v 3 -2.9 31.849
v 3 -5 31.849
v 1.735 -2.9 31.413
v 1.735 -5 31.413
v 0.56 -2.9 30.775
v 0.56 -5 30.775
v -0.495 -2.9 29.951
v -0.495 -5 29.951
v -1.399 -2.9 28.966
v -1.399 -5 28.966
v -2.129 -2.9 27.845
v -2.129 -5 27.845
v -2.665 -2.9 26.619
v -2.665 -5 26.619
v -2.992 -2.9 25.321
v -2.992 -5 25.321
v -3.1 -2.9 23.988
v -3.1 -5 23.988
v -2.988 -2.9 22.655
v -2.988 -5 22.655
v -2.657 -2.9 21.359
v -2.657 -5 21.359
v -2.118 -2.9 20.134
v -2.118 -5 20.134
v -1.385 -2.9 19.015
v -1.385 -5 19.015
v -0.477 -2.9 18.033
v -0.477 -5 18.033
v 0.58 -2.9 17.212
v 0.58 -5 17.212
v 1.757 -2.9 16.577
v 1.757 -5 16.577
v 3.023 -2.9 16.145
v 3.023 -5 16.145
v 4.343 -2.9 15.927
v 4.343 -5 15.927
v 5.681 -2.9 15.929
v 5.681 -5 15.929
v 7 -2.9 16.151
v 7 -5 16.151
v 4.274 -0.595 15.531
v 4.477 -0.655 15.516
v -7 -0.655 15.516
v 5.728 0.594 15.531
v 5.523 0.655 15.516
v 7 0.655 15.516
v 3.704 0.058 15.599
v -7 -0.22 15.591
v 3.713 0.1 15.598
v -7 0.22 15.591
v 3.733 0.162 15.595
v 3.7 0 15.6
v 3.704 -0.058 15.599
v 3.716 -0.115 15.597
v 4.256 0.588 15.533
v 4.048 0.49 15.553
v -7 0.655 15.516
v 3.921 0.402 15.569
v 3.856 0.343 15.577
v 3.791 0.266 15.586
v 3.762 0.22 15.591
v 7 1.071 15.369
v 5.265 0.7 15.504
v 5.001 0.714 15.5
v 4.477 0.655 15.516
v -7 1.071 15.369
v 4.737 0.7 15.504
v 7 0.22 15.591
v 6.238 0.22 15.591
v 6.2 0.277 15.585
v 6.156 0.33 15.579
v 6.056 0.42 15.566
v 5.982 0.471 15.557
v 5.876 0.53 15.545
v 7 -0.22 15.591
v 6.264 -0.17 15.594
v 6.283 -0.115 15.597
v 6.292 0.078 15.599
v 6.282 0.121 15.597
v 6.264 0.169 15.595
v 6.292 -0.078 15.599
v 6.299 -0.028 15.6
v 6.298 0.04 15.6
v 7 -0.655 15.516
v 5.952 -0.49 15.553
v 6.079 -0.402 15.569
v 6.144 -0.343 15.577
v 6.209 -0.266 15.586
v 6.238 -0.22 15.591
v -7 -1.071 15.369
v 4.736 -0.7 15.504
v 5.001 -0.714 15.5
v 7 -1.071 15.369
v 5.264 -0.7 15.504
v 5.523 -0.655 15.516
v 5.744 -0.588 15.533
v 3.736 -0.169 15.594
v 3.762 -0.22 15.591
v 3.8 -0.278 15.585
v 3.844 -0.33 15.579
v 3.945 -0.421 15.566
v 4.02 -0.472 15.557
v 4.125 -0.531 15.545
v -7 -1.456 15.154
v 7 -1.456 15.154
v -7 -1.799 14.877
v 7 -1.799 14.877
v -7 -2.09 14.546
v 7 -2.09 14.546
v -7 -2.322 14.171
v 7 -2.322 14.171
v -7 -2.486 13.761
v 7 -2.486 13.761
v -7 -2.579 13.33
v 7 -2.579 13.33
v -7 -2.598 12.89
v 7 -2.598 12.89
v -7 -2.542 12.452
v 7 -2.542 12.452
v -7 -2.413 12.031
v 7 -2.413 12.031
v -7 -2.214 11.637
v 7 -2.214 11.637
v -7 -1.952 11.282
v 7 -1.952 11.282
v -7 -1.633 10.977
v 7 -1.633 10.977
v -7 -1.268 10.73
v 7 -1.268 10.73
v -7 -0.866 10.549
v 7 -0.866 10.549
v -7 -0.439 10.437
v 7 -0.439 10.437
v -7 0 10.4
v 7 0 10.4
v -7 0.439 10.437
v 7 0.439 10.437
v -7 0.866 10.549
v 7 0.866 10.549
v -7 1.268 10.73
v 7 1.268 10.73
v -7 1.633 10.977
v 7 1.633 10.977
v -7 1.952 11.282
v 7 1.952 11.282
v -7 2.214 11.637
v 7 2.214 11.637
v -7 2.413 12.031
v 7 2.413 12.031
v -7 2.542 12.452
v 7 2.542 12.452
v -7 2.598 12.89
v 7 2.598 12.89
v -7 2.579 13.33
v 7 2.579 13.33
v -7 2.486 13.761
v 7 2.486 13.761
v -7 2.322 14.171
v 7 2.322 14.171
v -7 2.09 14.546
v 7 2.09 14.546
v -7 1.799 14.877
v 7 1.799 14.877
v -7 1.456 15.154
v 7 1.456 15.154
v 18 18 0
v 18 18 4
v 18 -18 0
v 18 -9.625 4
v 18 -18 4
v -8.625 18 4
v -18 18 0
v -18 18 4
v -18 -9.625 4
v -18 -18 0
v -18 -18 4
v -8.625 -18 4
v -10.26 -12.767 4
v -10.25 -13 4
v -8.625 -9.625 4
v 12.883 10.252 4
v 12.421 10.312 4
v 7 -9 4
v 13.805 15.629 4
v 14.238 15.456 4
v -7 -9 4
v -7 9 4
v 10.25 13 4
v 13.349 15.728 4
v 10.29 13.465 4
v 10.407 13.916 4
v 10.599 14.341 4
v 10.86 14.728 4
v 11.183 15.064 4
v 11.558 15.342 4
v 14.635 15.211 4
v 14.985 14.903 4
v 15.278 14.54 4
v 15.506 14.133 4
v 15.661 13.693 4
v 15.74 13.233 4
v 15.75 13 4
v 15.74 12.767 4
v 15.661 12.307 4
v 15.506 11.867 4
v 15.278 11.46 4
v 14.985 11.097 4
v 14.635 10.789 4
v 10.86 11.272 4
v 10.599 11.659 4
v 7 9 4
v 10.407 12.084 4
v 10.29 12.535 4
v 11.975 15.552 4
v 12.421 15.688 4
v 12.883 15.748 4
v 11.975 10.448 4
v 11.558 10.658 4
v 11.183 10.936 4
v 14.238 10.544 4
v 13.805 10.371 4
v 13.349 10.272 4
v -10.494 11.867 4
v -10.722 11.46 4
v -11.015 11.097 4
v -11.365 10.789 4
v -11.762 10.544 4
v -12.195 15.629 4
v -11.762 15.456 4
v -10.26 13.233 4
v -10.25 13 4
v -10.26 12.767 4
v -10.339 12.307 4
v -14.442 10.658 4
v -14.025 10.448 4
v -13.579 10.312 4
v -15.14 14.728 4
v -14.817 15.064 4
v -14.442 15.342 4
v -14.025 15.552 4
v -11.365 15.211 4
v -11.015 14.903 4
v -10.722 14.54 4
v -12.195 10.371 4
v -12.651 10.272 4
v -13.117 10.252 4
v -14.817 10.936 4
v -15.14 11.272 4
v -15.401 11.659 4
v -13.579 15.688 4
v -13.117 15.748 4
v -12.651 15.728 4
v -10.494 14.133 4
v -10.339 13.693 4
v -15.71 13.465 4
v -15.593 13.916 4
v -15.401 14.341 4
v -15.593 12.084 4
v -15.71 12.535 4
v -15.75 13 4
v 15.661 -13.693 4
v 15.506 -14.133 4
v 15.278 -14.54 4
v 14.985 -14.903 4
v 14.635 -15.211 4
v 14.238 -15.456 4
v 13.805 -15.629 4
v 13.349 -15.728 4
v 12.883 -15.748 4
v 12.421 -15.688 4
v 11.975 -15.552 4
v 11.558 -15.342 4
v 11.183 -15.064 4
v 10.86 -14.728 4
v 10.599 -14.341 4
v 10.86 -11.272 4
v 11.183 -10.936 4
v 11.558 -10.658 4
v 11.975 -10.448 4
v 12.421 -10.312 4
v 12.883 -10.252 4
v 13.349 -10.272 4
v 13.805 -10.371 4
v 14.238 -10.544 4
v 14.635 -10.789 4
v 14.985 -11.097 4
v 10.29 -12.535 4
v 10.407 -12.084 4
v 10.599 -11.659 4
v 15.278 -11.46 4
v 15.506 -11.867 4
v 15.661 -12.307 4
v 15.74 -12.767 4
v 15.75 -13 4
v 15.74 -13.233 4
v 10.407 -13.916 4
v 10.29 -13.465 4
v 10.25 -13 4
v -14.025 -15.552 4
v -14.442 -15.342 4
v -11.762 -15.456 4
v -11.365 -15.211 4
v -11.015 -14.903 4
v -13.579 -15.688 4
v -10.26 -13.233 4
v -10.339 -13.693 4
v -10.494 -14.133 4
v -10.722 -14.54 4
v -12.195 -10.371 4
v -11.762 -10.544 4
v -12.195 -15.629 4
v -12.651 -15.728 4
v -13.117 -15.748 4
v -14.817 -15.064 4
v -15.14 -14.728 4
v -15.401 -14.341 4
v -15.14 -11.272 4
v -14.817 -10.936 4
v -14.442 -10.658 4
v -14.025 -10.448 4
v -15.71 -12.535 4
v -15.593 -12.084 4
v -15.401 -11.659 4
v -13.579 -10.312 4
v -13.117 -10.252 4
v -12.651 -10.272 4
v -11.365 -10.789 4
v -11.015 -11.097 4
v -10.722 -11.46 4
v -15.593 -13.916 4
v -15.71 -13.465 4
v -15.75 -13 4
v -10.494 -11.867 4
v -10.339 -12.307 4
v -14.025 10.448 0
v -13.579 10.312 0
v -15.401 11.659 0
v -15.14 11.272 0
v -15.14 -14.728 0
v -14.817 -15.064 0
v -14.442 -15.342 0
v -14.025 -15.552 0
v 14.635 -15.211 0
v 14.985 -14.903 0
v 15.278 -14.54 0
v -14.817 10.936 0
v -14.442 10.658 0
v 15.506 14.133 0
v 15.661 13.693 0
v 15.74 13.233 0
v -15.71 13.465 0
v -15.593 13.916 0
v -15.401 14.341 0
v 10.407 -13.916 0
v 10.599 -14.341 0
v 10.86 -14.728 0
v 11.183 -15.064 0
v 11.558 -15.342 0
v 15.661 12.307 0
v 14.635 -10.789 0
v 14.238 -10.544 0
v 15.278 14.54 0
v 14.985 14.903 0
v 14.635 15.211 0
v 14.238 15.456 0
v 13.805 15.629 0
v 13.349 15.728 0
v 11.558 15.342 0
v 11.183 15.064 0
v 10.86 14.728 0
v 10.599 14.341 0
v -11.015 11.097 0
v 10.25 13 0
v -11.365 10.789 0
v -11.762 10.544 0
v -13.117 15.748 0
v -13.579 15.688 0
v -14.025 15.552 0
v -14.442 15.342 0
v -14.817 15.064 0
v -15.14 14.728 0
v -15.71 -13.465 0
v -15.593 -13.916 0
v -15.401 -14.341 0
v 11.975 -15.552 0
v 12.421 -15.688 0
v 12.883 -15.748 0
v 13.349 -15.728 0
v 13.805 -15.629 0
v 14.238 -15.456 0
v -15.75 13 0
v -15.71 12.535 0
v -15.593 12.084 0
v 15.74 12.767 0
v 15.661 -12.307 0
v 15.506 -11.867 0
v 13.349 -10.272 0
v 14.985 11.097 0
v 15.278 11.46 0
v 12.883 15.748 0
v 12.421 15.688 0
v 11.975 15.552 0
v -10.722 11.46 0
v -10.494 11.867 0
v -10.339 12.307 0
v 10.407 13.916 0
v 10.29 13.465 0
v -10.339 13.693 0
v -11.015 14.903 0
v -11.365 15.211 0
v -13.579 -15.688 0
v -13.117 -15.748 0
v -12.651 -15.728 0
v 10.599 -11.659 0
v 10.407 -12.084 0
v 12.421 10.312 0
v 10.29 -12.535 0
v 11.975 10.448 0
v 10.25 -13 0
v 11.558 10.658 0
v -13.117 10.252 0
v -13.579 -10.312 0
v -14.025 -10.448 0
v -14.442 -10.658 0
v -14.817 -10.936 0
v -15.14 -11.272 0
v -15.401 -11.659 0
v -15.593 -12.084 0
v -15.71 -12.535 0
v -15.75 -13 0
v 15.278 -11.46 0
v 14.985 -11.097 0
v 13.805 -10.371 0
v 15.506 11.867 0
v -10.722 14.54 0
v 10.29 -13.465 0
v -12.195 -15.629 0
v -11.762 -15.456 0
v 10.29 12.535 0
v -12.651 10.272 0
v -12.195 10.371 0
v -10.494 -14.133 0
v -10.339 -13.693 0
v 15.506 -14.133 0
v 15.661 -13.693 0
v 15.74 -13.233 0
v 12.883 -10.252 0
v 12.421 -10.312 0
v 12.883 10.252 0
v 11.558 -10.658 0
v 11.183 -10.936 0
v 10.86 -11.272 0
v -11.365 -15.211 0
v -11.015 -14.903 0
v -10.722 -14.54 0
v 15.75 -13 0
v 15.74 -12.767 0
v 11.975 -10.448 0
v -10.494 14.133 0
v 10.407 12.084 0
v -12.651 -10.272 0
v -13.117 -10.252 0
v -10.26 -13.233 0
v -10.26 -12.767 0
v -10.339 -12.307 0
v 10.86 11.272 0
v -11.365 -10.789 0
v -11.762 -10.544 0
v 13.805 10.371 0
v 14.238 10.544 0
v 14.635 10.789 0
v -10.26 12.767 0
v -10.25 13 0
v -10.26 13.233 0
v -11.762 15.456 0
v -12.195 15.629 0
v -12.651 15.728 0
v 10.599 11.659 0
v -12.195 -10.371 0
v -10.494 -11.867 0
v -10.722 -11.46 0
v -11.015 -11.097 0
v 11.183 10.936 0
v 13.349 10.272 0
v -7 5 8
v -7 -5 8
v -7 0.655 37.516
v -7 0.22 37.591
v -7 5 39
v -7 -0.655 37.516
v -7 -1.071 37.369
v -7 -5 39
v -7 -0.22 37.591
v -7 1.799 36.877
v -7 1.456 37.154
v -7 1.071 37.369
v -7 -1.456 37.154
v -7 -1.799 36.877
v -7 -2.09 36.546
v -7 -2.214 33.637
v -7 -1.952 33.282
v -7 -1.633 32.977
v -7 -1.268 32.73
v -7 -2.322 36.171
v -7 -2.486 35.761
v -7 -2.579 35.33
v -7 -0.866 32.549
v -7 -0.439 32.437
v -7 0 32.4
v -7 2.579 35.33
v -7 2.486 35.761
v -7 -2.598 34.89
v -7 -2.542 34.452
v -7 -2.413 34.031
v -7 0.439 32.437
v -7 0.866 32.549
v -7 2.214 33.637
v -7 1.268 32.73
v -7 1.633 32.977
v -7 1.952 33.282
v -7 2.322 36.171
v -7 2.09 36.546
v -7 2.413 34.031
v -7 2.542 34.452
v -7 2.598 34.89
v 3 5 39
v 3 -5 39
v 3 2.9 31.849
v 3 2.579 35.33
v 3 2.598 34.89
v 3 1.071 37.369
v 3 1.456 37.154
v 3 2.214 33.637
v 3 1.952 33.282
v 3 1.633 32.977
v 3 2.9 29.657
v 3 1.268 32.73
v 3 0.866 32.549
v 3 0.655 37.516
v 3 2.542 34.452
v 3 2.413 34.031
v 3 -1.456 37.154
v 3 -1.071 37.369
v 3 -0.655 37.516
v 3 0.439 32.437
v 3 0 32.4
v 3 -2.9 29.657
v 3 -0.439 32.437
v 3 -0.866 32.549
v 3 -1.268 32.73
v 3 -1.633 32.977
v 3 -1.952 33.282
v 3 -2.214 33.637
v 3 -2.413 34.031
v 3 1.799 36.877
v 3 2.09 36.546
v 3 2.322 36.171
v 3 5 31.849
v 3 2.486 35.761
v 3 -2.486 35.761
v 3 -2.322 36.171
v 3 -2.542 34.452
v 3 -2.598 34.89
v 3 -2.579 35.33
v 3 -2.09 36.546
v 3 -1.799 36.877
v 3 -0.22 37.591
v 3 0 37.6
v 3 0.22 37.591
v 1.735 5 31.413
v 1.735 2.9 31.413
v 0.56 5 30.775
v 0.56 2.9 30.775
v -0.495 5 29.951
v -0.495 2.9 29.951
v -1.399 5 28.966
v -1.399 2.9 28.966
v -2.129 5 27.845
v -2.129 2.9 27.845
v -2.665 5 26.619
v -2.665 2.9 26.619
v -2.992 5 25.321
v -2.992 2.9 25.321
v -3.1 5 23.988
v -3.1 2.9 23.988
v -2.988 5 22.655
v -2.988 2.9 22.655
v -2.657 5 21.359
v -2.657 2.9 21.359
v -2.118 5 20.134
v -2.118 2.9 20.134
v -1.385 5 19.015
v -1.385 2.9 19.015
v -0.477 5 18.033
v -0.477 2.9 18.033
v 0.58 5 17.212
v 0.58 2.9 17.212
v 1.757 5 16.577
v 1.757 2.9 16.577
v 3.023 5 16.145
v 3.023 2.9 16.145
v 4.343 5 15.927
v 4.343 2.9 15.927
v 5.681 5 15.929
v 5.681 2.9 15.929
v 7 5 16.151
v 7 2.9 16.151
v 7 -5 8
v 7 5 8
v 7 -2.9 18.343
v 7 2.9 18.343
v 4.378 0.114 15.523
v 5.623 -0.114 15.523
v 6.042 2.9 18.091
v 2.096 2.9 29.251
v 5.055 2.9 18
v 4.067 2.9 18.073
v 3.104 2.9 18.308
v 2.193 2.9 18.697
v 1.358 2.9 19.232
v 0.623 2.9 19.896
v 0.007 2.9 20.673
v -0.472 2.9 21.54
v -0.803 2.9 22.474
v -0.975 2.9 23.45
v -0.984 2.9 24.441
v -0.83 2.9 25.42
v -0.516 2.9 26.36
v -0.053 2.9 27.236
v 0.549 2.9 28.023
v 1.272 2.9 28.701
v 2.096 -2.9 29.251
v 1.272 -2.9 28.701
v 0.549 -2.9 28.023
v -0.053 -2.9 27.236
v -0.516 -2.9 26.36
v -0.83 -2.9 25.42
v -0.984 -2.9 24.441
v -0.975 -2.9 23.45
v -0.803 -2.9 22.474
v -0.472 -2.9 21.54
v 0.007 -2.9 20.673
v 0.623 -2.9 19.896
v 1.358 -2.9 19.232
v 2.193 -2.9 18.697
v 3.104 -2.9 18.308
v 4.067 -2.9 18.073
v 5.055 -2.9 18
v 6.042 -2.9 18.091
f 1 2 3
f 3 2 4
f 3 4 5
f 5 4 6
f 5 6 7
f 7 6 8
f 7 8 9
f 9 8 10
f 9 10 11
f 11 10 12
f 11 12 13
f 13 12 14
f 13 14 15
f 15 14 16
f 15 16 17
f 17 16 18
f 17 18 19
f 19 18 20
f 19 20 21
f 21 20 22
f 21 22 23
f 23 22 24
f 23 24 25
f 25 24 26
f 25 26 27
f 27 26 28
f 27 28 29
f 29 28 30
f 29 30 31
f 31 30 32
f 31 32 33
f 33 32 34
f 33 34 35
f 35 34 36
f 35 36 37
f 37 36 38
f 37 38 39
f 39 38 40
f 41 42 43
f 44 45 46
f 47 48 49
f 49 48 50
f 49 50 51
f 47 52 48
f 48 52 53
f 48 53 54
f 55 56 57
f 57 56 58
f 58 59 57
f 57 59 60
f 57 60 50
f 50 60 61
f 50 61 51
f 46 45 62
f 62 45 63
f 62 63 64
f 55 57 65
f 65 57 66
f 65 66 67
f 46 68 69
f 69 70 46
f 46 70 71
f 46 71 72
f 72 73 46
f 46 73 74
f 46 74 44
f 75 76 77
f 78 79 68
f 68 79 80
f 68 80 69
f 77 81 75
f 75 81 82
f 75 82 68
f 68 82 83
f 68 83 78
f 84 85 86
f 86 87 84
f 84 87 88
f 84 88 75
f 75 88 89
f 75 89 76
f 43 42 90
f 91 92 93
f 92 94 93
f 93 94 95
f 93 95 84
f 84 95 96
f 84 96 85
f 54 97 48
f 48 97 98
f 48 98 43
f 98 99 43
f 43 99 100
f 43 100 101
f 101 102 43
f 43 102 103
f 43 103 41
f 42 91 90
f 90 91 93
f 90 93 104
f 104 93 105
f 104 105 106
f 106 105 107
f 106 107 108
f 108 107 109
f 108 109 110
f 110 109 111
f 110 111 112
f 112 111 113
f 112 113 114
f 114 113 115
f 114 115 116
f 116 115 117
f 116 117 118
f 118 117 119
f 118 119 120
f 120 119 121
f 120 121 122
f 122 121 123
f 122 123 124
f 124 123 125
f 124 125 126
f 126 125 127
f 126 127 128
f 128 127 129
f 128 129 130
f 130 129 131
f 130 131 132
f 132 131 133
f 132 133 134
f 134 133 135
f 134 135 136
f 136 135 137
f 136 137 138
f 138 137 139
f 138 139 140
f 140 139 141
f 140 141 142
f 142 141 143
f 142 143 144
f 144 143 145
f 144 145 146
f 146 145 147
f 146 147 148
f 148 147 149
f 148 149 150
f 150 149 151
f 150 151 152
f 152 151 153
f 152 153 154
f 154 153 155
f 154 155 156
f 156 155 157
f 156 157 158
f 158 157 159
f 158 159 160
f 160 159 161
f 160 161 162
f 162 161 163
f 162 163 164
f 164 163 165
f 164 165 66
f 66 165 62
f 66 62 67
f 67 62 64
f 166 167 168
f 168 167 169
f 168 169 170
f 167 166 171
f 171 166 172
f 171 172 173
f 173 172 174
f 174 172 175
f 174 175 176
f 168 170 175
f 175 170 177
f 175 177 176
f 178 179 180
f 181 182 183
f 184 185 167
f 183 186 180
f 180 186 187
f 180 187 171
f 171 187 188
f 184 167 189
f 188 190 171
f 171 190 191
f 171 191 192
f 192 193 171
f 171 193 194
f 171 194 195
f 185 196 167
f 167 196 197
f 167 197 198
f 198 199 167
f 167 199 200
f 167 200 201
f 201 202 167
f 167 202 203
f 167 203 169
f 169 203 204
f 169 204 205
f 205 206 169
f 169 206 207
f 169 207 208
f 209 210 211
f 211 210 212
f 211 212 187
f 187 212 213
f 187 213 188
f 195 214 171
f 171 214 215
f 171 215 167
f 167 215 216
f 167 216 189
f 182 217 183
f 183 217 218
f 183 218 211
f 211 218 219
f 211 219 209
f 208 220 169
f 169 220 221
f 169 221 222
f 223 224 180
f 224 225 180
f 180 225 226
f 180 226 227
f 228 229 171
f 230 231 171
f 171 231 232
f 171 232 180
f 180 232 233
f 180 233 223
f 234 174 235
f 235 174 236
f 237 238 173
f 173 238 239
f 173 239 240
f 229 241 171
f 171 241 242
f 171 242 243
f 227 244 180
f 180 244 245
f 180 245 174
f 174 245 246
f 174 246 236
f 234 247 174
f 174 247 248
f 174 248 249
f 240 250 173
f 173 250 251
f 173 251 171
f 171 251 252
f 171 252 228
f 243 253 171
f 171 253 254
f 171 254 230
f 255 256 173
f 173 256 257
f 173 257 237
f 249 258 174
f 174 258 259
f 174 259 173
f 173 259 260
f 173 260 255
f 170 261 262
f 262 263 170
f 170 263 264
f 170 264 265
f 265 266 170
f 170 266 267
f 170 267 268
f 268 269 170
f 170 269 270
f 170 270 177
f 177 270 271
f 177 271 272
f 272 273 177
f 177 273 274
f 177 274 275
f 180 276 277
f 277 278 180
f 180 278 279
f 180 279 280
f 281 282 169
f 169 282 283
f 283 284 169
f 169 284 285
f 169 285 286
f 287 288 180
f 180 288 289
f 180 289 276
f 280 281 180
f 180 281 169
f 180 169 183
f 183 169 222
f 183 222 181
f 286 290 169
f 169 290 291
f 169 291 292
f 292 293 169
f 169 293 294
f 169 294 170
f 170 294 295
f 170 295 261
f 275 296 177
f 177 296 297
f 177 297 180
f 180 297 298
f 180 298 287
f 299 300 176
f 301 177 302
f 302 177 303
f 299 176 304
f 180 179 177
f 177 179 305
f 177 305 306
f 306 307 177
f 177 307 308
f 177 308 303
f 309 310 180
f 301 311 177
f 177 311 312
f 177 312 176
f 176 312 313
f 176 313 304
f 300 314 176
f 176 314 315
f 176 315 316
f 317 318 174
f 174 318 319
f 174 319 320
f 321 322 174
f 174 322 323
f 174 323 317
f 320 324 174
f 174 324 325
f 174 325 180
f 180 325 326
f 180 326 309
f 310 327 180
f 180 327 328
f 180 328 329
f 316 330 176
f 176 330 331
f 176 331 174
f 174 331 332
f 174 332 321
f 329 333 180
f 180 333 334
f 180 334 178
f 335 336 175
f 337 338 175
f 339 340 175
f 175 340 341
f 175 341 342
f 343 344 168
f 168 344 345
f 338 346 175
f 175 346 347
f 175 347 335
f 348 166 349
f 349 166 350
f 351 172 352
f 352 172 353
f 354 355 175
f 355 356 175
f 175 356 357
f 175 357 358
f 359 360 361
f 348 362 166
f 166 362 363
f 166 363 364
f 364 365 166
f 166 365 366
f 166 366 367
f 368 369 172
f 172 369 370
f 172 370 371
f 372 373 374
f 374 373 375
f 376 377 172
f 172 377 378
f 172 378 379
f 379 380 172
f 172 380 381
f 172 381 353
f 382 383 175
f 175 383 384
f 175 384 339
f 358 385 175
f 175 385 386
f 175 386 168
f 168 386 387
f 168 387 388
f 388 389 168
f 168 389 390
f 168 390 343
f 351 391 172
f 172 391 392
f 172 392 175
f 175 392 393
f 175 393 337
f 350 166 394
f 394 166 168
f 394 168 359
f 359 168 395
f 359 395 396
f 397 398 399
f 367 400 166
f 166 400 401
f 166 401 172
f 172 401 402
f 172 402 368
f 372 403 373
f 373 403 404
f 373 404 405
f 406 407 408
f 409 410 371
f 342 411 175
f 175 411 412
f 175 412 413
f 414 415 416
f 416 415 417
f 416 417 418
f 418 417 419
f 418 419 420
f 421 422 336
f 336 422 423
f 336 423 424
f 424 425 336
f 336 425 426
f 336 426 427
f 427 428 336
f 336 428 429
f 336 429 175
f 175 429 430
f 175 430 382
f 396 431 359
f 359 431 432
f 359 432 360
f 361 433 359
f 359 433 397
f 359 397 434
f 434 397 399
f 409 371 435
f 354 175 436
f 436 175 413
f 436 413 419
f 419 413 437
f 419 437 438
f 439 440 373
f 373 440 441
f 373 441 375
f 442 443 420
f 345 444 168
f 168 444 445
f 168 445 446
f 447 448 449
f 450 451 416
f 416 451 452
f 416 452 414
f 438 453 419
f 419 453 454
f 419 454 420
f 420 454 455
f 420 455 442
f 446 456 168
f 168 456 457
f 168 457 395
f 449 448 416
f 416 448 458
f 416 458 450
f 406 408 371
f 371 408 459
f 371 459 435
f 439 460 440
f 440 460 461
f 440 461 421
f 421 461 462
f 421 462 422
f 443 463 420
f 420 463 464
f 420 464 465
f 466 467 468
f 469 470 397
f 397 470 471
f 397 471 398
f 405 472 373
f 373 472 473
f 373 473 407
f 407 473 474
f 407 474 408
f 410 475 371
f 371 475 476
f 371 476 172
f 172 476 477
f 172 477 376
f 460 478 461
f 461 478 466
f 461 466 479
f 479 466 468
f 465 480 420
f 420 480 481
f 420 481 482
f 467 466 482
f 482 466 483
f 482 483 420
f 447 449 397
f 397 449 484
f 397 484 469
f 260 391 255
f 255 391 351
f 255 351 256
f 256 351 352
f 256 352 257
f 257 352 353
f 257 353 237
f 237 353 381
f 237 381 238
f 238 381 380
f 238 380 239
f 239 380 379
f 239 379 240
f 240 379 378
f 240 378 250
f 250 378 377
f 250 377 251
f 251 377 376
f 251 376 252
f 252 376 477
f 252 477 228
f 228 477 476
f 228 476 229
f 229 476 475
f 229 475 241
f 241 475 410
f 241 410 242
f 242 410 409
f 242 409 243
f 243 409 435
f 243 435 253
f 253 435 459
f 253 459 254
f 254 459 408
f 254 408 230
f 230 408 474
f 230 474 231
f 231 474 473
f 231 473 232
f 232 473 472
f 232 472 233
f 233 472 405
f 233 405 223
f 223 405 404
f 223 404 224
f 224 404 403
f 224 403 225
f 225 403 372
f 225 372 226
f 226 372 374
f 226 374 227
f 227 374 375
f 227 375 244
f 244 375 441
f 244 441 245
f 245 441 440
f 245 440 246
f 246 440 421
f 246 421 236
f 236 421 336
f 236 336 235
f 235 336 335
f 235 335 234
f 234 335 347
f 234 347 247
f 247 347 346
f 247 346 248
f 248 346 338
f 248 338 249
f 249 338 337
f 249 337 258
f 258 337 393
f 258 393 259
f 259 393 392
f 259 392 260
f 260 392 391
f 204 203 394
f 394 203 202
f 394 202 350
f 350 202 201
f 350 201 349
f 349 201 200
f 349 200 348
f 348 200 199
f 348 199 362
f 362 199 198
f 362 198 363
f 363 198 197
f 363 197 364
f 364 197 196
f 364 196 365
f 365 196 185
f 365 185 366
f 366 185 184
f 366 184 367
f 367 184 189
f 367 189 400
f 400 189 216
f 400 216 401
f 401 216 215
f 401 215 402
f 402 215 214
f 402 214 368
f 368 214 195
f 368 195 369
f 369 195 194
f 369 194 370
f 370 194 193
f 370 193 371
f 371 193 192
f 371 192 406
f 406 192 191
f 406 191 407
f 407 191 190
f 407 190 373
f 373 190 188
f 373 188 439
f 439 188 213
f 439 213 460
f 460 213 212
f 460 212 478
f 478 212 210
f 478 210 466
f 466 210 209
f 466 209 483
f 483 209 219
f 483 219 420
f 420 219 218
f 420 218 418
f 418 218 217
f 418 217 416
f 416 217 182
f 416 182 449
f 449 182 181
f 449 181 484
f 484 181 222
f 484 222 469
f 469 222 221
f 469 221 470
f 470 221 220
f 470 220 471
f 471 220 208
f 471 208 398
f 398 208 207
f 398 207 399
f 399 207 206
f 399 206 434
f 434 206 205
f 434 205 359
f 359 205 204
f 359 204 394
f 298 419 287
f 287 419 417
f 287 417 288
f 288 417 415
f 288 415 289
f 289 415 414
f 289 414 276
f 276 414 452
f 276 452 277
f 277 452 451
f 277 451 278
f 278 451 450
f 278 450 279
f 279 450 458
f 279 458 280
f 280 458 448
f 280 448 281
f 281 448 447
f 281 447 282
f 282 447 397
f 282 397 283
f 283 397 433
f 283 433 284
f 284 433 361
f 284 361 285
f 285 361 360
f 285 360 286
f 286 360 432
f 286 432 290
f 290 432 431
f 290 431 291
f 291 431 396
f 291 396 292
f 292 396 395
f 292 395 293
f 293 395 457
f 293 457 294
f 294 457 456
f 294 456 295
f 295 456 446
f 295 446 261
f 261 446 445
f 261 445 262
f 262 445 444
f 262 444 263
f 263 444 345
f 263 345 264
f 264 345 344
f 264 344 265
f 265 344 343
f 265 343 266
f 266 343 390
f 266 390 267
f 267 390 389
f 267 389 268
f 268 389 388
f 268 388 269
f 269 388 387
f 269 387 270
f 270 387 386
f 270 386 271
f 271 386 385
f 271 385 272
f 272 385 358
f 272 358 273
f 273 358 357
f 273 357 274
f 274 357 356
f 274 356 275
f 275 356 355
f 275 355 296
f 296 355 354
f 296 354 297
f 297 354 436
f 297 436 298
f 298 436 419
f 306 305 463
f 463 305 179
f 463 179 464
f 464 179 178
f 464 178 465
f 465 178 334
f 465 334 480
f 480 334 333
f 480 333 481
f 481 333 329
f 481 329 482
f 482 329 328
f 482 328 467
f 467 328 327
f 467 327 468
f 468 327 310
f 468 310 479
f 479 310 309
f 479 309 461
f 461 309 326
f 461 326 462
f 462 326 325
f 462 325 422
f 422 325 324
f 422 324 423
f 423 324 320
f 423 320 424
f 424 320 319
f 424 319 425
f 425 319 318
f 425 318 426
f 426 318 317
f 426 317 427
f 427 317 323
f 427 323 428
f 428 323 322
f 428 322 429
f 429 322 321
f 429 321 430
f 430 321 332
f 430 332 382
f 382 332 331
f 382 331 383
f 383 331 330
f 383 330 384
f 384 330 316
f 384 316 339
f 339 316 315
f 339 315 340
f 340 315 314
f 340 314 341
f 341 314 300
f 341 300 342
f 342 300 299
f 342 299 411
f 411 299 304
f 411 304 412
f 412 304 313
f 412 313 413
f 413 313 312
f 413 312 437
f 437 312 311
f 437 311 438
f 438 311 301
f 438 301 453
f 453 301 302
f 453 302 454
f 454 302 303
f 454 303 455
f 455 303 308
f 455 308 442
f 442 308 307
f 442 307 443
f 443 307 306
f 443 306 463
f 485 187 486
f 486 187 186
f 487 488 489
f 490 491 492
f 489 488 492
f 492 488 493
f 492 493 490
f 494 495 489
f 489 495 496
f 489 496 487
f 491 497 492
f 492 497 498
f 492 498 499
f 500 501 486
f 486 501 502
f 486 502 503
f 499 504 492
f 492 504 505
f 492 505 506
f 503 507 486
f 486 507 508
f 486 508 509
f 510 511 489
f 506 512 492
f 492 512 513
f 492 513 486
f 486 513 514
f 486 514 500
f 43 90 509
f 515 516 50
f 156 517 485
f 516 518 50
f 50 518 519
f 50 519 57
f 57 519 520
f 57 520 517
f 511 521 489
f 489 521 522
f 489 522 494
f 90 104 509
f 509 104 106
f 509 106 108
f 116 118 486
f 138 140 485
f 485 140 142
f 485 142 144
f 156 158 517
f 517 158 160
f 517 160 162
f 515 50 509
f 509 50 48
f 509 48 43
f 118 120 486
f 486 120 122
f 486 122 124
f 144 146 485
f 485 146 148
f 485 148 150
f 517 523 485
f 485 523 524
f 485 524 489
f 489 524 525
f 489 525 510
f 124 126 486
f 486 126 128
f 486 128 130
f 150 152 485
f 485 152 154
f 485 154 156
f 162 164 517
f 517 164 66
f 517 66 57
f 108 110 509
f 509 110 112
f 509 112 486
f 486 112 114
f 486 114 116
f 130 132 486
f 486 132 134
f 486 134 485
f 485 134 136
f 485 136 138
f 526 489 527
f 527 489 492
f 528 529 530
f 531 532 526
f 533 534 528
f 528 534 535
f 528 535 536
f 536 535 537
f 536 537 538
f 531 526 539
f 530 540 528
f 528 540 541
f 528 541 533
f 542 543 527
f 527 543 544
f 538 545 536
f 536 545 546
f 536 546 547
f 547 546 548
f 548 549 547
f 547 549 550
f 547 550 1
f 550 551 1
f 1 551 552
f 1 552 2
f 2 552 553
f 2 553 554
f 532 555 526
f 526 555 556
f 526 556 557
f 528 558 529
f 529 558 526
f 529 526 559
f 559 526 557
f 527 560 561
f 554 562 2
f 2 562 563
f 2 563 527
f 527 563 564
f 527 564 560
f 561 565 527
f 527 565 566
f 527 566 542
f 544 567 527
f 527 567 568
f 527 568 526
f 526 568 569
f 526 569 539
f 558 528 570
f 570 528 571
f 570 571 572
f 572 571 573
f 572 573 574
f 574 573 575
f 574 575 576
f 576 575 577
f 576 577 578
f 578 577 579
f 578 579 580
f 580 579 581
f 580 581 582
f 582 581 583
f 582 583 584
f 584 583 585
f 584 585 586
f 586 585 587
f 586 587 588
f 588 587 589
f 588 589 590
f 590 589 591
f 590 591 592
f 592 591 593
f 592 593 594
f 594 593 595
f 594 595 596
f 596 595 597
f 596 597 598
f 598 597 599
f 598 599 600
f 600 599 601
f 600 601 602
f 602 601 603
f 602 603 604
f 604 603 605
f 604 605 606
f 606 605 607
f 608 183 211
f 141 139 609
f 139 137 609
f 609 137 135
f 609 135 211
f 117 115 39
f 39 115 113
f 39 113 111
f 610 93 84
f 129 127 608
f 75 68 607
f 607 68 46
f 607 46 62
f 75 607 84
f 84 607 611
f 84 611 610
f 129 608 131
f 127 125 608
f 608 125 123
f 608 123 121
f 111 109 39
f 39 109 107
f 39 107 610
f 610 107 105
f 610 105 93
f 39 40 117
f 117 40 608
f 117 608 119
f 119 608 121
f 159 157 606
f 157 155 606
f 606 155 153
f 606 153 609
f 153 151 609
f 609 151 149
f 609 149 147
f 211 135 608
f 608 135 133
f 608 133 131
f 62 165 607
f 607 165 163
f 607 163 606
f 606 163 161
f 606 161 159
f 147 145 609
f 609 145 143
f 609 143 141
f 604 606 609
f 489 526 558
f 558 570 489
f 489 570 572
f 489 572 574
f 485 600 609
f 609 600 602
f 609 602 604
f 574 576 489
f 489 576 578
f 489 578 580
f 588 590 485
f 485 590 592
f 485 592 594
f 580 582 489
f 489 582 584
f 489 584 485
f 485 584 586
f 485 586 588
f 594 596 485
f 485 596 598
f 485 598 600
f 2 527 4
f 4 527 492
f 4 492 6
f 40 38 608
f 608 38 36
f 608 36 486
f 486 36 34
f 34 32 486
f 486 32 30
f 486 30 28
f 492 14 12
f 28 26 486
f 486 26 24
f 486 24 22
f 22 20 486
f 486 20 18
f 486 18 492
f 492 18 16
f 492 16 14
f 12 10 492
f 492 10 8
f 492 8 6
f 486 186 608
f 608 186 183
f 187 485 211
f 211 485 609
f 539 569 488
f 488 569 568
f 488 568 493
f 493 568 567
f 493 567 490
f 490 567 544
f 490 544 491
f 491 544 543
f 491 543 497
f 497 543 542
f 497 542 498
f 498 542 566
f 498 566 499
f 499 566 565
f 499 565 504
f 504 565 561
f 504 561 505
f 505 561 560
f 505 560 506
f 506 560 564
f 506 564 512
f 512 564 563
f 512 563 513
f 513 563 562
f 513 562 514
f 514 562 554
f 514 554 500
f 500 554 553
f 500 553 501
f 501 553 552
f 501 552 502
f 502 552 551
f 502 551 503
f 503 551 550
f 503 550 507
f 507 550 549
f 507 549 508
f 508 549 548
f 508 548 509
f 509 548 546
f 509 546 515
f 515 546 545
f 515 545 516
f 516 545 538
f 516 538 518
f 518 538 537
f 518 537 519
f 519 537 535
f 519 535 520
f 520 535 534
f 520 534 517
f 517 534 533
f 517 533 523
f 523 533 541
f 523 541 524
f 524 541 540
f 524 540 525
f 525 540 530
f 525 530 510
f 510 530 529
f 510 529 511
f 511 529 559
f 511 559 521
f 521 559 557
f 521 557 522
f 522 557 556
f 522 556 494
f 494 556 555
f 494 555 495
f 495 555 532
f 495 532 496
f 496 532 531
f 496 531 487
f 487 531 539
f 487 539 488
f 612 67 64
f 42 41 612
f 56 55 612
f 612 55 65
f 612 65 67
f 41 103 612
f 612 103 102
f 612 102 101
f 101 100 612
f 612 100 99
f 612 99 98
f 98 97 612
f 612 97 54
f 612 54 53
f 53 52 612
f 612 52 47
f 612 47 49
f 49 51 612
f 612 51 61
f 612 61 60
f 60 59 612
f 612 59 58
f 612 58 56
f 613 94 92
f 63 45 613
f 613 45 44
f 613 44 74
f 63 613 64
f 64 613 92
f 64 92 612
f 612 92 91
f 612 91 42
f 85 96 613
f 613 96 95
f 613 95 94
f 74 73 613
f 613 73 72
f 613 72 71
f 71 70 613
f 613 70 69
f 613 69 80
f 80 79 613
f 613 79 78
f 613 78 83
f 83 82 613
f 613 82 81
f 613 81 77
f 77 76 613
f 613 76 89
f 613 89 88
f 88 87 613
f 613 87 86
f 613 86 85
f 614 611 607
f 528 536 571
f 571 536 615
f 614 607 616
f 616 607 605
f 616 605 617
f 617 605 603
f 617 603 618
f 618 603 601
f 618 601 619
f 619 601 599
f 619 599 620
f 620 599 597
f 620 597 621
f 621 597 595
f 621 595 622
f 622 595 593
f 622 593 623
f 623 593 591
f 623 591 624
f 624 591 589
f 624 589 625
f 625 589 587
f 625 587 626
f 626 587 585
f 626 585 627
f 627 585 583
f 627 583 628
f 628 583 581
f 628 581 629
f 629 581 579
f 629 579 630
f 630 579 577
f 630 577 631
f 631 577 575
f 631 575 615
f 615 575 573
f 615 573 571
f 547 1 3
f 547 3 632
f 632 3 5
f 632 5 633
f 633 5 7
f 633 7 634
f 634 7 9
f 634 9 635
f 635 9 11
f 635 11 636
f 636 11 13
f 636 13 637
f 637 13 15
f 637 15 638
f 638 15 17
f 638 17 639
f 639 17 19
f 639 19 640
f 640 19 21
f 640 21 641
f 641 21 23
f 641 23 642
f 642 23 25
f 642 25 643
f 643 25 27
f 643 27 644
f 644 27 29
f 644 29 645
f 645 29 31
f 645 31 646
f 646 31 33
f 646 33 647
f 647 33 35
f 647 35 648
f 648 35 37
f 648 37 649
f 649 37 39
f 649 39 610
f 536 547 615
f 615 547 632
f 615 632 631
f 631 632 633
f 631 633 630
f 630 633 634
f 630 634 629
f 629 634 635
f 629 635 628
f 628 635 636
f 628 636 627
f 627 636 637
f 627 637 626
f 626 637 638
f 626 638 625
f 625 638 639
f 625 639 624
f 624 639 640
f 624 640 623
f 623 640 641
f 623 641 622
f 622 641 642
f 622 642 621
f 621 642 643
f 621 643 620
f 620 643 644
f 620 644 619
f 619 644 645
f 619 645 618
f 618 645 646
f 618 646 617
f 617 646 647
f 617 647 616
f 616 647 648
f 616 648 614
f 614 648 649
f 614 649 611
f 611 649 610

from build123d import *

# Parameters (mm, degrees)
SKETCH1_W           = 36
SKETCH1_H           = 36
BOSS_EXTRUDE1_DEPTH = 4
CUT_EXTRUDE1_REACH  = 27.768
SKETCH2_R           = 2.75
BOSS_EXTRUDE2_DEPTH = 5
CHAMFER1_SIZE       = 4
SKETCH4_R           = 2.6
CUT_EXTRUDE2_DEPTH  = 7
BOSS_EXTRUDE3_DEPTH = 2.9


with BuildPart() as part:
    # Sketch1 → Boss-Extrude1 (new body)
    with BuildSketch(Plane.XY):
        Rectangle(SKETCH1_W, SKETCH1_H)
    extrude(amount=BOSS_EXTRUDE1_DEPTH)

    # Sketch2 → Cut-Extrude1 (cut, up to next)
    with BuildSketch(Plane.XY, mode=Mode.PRIVATE) as cut_extrude1_sk1:
        with Locations((-13, 13)):
            Circle(SKETCH2_R)
    cut_extrude1_tool1 = extrude(cut_extrude1_sk1.sketch, amount=CUT_EXTRUDE1_REACH, mode=Mode.PRIVATE) & part.part
    # Sketch2 → Cut-Extrude1 (cut, up to next)
    with BuildSketch(Plane.XY, mode=Mode.PRIVATE) as cut_extrude1_sk2:
        with Locations(Location((13, 13, 0), (0, 0, 180))):
            Circle(SKETCH2_R)
    cut_extrude1_tool2 = extrude(cut_extrude1_sk2.sketch, amount=CUT_EXTRUDE1_REACH, mode=Mode.PRIVATE) & part.part
    # Sketch2 → Cut-Extrude1 (cut, up to next)
    with BuildSketch(Plane.XY, mode=Mode.PRIVATE) as cut_extrude1_sk3:
        with Locations((13, -13)):
            Circle(SKETCH2_R)
    cut_extrude1_tool3 = extrude(cut_extrude1_sk3.sketch, amount=CUT_EXTRUDE1_REACH, mode=Mode.PRIVATE) & part.part
    # Sketch2 → Cut-Extrude1 (cut, up to next)
    with BuildSketch(Plane.XY, mode=Mode.PRIVATE) as cut_extrude1_sk4:
        with Locations(Location((-13, -13, 0), (0, 0, 180))):
            Circle(SKETCH2_R)
    cut_extrude1_tool4 = extrude(cut_extrude1_sk4.sketch, amount=CUT_EXTRUDE1_REACH, mode=Mode.PRIVATE) & part.part
    add(cut_extrude1_tool1.solids().sort_by_distance((-13, 13, 0))[0], mode=Mode.SUBTRACT)
    add(cut_extrude1_tool2.solids().sort_by_distance((13, 13, 0))[0], mode=Mode.SUBTRACT)
    add(cut_extrude1_tool3.solids().sort_by_distance((13, -13, 0))[0], mode=Mode.SUBTRACT)
    add(cut_extrude1_tool4.solids().sort_by_distance((-13, -13, 0))[0], mode=Mode.SUBTRACT)

    # Sketch3 → Boss-Extrude2 (add, symmetric)
    with BuildSketch(Plane(origin=(0, 0, 0), x_dir=(1, 0, 0), z_dir=(0, 1, 0))):
        with BuildLine():
            Line((-7, -4), (-7, -39))
            Line((-7, -39), (3, -39))
            Line((3, -39), (3, -31.849203781))
            ThreePointArc((3, -31.849203781), (-2.849203781, -22), (7, -16.150796219))
            Line((7, -16.150796219), (7, -4))
            Line((7, -4), (-7, -4))
        make_face()
    extrude(amount=BOSS_EXTRUDE2_DEPTH, both=True)

    # Chamfer1
    chamfer1_edges = [part.edges().sort_by_distance(p)[0] for p in [
        (0, -5, 4),
        (0, 5, 4),
    ]]
    chamfer(chamfer1_edges, length=CHAMFER1_SIZE)

    # Sketch4 → Cut-Extrude2 (cut, symmetric)
    with BuildSketch(Plane(origin=(0, 0, 0), x_dir=(0, 0, -1), z_dir=(1, 0, 0))):
        with Locations((-13, 0)):
            Circle(SKETCH4_R)
        with Locations((-35, 0)):
            Circle(SKETCH4_R)
    extrude(amount=CUT_EXTRUDE2_DEPTH, both=True, mode=Mode.SUBTRACT)

    # Sketch5 → Boss-Extrude3 (add, symmetric)
    with BuildSketch(Plane(origin=(0, 0, 0), x_dir=(1, 0, 0), z_dir=(0, 1, 0))):
        with BuildLine():
            Line((7, -15.738644179), (7, -18.343145751))
            ThreePointArc((7, -18.343145751), (-0.656854249, -22), (3, -29.656854249))
            Line((3, -29.656854249), (3, -32.261355821))
            ThreePointArc((3, -32.261355821), (-3.261355821, -22), (7, -15.738644179))
        make_face()
    extrude(amount=BOSS_EXTRUDE3_DEPTH, both=True)


solid = part.part
